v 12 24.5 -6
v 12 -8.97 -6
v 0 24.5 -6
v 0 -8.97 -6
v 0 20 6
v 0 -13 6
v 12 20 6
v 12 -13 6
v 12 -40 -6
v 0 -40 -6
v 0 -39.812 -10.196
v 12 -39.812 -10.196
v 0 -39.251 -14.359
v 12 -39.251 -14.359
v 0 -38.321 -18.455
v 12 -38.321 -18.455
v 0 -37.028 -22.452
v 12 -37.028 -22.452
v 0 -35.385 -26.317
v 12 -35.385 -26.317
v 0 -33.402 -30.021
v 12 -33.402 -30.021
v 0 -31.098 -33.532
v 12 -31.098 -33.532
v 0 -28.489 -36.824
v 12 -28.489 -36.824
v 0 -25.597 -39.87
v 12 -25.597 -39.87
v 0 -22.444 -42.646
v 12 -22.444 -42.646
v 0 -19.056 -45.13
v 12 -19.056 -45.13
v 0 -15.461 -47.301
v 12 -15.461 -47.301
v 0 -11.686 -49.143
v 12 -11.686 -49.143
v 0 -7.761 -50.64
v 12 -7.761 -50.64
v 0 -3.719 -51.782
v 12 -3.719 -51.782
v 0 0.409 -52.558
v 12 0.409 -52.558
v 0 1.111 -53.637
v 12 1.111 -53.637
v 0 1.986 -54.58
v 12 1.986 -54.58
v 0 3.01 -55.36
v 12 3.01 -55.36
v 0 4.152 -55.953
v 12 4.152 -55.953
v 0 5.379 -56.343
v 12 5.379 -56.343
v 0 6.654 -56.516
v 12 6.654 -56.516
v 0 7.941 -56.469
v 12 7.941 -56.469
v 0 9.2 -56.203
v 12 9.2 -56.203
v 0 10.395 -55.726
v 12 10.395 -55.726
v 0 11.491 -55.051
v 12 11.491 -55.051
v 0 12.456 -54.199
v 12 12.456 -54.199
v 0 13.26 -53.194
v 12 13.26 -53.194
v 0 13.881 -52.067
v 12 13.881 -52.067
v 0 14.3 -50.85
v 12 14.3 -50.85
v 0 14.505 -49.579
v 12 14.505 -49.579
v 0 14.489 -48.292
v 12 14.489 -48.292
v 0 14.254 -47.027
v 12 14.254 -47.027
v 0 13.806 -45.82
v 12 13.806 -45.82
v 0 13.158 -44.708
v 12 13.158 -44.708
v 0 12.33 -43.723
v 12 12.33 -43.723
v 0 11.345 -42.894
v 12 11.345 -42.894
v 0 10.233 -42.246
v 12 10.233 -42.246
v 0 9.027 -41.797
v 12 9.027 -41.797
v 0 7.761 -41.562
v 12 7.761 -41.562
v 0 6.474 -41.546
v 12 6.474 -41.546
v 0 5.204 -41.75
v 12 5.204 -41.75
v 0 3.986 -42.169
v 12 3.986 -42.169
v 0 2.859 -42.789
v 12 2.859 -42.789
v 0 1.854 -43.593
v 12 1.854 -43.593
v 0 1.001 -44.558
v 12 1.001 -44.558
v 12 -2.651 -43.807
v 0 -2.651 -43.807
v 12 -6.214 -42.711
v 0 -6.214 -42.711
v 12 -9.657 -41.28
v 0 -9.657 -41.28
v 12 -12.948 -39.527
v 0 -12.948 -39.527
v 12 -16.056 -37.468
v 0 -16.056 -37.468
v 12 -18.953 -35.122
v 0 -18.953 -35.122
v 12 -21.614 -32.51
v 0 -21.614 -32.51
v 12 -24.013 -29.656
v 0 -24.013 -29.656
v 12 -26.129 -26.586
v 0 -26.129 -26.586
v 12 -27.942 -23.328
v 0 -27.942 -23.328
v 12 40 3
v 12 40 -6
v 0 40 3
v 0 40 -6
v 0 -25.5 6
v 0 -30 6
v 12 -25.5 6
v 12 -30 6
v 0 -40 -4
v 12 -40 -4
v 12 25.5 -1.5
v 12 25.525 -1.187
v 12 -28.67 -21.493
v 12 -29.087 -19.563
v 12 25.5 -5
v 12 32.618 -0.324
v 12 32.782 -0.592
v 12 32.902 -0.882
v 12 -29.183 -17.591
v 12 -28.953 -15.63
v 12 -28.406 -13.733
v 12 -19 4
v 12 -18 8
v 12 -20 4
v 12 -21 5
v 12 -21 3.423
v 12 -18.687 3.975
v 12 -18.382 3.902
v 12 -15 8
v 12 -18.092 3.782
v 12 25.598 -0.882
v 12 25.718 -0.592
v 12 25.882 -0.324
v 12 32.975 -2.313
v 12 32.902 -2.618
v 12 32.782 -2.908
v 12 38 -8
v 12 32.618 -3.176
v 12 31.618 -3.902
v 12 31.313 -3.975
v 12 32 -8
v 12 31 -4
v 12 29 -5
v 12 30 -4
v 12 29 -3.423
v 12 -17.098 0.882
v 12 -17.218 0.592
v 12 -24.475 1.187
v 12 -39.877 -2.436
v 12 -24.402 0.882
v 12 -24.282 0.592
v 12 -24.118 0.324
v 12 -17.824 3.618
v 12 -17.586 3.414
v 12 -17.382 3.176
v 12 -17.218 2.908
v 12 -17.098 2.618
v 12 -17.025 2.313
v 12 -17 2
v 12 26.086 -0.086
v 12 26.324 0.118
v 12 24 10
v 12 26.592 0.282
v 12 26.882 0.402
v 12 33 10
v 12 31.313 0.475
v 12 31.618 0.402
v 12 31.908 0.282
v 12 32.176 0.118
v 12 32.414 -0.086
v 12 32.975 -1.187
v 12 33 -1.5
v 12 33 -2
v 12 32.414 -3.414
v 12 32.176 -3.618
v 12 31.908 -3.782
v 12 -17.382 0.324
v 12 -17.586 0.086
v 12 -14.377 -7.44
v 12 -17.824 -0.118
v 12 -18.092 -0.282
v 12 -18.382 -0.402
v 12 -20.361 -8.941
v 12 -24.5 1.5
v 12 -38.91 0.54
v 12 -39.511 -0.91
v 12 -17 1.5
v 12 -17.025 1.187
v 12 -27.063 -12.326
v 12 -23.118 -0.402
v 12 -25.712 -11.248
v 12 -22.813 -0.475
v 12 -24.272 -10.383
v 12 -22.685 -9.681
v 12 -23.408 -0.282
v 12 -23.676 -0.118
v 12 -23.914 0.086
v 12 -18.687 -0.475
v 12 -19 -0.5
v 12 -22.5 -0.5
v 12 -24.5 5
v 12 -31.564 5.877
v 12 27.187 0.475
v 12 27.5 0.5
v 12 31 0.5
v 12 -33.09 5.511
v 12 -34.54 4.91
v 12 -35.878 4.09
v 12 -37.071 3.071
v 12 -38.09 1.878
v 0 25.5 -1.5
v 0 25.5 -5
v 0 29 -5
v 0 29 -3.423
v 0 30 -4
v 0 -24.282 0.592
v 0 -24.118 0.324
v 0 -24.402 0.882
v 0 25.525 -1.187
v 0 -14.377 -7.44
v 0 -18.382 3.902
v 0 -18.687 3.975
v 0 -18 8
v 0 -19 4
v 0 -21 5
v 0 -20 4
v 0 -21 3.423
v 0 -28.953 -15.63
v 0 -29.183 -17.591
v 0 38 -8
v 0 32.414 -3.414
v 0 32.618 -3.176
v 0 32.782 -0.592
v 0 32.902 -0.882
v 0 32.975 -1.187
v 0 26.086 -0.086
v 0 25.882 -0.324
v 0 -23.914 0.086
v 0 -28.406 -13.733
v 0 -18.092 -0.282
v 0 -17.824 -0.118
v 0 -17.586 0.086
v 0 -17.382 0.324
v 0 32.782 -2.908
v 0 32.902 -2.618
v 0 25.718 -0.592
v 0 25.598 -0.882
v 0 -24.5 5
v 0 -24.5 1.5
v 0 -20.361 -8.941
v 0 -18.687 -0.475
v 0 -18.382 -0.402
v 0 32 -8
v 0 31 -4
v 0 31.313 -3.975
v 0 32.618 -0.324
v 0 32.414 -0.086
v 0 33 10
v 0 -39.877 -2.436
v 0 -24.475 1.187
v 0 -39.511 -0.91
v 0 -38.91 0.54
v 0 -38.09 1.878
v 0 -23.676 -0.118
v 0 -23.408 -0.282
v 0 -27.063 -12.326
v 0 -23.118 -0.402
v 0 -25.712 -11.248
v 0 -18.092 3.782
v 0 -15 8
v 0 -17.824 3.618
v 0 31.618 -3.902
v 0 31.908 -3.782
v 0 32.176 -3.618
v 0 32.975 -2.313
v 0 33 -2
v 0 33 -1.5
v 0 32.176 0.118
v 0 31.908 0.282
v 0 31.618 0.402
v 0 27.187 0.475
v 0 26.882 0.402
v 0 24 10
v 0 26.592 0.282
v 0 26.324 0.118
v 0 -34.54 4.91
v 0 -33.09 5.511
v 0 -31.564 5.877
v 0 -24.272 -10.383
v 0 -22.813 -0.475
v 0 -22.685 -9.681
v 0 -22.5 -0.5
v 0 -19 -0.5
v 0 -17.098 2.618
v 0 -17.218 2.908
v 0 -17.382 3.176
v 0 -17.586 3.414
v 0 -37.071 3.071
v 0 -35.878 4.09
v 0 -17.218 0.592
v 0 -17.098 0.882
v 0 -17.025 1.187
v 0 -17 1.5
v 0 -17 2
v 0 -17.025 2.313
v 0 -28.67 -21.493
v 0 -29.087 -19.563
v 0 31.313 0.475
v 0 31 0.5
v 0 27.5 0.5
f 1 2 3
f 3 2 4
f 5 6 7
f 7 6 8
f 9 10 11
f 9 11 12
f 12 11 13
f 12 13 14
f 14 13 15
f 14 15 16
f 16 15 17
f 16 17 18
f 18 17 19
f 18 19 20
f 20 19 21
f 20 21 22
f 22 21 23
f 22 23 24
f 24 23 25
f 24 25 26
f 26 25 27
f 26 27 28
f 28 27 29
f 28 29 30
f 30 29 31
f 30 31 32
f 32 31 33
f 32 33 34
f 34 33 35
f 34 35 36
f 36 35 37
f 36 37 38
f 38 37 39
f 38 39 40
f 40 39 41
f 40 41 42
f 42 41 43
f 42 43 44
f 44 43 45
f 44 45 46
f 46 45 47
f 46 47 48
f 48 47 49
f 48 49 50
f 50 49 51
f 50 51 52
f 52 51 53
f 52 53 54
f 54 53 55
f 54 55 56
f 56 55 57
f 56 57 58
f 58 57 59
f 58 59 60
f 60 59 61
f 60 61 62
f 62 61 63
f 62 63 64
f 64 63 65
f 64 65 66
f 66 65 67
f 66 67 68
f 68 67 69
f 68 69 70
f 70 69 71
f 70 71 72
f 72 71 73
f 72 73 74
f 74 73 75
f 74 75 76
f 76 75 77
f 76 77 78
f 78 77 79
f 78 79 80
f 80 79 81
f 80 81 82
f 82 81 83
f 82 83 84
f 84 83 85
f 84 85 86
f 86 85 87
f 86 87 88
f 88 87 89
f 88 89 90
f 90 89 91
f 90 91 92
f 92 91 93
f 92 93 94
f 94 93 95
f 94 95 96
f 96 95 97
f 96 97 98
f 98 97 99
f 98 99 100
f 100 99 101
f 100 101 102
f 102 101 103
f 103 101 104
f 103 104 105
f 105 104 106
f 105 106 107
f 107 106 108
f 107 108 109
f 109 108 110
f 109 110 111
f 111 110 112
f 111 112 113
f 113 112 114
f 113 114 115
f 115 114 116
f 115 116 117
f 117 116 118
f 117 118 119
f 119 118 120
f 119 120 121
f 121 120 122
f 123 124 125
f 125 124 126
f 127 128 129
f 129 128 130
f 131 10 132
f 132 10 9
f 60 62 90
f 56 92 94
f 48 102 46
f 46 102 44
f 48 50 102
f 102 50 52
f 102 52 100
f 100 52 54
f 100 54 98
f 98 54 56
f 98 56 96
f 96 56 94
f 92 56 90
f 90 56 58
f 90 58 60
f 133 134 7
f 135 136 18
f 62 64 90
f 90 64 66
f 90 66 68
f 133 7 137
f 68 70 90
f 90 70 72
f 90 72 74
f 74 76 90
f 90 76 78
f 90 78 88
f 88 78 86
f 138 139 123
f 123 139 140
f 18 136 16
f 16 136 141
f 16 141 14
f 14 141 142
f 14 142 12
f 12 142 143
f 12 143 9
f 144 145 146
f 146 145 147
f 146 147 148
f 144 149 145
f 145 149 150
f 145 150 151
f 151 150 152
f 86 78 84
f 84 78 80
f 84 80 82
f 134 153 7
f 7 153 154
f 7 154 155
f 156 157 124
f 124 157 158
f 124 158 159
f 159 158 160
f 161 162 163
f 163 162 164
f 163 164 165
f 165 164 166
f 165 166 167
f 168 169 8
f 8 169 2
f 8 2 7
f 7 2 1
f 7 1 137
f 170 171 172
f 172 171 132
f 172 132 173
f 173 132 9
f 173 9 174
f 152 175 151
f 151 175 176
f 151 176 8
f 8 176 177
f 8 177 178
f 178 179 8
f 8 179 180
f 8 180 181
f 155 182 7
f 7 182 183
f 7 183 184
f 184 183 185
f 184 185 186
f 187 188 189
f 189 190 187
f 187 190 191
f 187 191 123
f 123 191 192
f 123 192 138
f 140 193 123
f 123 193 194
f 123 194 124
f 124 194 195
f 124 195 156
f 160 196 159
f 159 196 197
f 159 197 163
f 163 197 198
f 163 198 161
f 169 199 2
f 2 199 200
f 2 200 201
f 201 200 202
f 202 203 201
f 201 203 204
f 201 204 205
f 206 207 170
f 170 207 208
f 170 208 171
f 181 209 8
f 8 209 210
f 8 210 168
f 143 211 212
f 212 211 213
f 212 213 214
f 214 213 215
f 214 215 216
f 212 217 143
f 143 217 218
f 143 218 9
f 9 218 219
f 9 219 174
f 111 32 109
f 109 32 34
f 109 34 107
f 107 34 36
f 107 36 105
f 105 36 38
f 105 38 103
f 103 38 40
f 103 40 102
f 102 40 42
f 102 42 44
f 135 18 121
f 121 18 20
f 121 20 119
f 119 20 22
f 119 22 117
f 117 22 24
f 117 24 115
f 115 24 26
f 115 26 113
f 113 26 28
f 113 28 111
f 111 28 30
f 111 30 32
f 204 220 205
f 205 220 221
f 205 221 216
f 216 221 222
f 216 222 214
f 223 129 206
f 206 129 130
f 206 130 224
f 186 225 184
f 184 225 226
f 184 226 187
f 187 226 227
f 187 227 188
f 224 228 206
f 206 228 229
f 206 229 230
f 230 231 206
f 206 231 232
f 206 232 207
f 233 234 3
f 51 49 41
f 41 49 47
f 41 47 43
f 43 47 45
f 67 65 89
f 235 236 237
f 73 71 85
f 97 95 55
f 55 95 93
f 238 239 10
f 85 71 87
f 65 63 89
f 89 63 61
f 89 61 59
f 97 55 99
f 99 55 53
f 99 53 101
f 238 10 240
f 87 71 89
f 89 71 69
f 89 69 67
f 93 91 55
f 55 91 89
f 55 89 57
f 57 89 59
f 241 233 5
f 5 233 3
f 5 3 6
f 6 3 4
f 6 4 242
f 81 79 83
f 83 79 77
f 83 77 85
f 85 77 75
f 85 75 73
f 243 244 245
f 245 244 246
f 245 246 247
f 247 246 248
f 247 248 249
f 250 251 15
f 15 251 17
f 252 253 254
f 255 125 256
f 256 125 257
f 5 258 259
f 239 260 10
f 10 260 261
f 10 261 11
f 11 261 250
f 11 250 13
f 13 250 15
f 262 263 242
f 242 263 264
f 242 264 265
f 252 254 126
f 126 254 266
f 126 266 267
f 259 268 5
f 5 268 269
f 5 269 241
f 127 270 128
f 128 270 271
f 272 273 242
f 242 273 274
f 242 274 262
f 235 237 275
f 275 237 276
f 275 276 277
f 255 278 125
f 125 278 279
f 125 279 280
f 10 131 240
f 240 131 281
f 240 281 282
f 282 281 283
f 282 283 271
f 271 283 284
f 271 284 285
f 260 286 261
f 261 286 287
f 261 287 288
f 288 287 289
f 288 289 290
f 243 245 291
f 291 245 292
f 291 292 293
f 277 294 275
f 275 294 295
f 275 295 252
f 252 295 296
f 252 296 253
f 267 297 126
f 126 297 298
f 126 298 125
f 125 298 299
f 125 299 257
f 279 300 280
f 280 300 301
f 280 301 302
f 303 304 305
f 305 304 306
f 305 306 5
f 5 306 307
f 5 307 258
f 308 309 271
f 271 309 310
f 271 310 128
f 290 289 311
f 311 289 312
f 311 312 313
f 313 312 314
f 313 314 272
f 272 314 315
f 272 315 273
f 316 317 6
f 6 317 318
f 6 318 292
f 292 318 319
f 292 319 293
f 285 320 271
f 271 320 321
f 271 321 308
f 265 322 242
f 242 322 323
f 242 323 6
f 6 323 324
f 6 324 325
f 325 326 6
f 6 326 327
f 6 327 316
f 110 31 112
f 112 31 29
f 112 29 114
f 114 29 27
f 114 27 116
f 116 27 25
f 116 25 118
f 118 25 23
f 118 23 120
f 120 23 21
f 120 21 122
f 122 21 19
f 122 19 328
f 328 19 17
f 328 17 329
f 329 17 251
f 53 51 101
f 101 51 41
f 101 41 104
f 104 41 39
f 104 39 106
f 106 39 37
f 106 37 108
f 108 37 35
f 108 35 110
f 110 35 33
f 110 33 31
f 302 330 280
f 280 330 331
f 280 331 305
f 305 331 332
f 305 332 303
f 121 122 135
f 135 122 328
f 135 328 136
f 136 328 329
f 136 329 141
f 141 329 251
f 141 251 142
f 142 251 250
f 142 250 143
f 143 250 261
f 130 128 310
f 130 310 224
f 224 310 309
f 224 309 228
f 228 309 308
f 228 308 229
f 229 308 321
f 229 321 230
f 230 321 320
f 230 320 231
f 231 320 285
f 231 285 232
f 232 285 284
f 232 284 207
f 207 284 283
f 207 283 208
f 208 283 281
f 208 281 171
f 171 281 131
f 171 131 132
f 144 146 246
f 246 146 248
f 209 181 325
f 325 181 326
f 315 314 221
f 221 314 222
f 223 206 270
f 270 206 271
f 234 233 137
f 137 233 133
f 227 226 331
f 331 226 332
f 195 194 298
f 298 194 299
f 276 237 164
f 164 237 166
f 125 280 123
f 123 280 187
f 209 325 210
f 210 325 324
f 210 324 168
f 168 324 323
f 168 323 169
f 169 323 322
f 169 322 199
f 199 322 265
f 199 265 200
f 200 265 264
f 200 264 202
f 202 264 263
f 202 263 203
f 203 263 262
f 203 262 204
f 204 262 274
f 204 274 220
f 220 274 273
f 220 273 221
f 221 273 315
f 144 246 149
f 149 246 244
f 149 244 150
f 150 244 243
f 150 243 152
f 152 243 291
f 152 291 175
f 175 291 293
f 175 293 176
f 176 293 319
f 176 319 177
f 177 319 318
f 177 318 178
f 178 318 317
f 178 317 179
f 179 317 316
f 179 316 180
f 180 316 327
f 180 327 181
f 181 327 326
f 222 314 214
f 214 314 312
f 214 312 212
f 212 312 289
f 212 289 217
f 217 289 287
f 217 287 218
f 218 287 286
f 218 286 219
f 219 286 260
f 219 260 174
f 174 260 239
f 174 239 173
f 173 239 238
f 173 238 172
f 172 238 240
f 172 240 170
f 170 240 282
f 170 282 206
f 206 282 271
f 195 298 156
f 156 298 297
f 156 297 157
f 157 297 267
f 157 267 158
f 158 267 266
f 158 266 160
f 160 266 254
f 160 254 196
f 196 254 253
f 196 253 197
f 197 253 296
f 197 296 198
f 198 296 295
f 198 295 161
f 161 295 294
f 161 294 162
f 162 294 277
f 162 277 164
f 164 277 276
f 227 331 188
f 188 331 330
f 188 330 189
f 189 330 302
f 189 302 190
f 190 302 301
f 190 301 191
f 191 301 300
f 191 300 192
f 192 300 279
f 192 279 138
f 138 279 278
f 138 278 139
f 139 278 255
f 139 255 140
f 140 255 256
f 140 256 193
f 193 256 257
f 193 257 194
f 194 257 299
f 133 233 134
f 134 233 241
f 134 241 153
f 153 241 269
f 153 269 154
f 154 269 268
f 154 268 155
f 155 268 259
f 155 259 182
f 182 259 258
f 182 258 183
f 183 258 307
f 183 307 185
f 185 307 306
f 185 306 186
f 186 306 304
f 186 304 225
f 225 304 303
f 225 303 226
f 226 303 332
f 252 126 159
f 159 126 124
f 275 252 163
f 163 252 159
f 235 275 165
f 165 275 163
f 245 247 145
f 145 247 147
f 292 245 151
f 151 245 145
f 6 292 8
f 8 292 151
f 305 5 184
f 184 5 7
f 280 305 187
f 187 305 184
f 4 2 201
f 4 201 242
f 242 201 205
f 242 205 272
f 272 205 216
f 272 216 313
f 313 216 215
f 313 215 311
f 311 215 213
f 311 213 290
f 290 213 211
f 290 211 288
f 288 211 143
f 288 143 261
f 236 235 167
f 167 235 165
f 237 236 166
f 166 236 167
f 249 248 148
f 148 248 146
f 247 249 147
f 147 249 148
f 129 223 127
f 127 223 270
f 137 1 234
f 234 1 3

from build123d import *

# Parameters (mm, degrees)
BOSS_EXTRUDE1_DEPTH = 12
FILLET1_R           = 12
FILLET2_R           = 10
CUT_EXTRUDE1_DEPTH  = 12
CHAMFER1_SIZE       = 3
FILLET3_R           = 2
BOSS_EXTRUDE2_DEPTH = 12
BOSS_EXTRUDE3_DEPTH = 12
CHAMFER2_SIZE       = 1


with BuildPart() as part:
    # Sketch2 → Boss-Extrude1 (new body)
    with BuildSketch(Plane(origin=(0, 0, 0), x_dir=(0, 0, -1), z_dir=(1, 0, 0))):
        with BuildLine():
            Line((-6, 40), (6, 40))
            Line((6, 40), (6, -32))
            ThreePointArc((6, -32), (31.376089713, -22.623144998), (44.55766945, 1.001361229))
            ThreePointArc((44.55766945, 1.001361229), (49.578973365, 14.504959969), (52.55766945, 0.409285399))
            ThreePointArc((52.55766945, 0.409285399), (36.824206929, -28.488778663), (6, -40))
            Line((6, -40), (-6, -40))
            Line((-6, -40), (-6, 40))
        make_face()
    extrude(amount=BOSS_EXTRUDE1_DEPTH)

    # Fillet1
    fillet1_edges = [part.edges().sort_by_distance(p)[0] for p in [
        (6, -32, -6),
    ]]
    fillet(fillet1_edges, radius=FILLET1_R)

    # Fillet2
    fillet2_edges = [part.edges().sort_by_distance(p)[0] for p in [
        (6, -40, 6),
    ]]
    fillet(fillet2_edges, radius=FILLET2_R)

    # Sketch3 → Cut-Extrude1 (cut)
    with BuildSketch(Plane(origin=(12, 0, 0), x_dir=(0, 0, -1), z_dir=(1, 0, 0))):
        Polygon((-6, -20), (-4, -20), (-4, -17), (0.5, -17), (0.5, -20), (0.5, -24.5), (-6, -24.5), align=None)
        Polygon((6, 30), (4, 30), (4, 33), (-0.5, 33), (-0.5, 30), (-0.5, 25.5), (6, 25.5), align=None)
    extrude(amount=-CUT_EXTRUDE1_DEPTH, mode=Mode.SUBTRACT)

    # Chamfer1
    chamfer1_edges = [part.edges().sort_by_distance(p)[0] for p in [
        (6, 40, 6),
    ]]
    chamfer(chamfer1_edges, length=CHAMFER1_SIZE)

    # Fillet3
    fillet3_edges = [part.edges().sort_by_distance(p)[0] for p in [
        (6, -17, 4),
        (6, -17, -0.5),
        (6, -24.5, -0.5),
        (6, 25.5, 0.5),
        (6, 33, 0.5),
        (6, 33, -4),
    ]]
    fillet(fillet3_edges, radius=FILLET3_R)

    # Sketch4 → Boss-Extrude2 (add)
    with BuildSketch(Plane(origin=(12, 0, 0), x_dir=(0, 0, -1), z_dir=(1, 0, 0))):
        Polygon((6, 30), (8, 32), (8, 38), (6, 40), align=None)
        Polygon((-6, -20), (-8, -18), (-8, -15), (-6, -13), align=None)
        Polygon((-6, 37), (-10, 33), (-10, 24), (-6, 20), align=None)
        with BuildLine():
            Line((6, -8.96976203), (3.756023672, -12.28945594))
            Line((3.756023672, -12.28945594), (6, -29.586808416))
            Line((6, -29.586808416), (13.733193293, -28.4055347))
            add(Edge.make_bspline(
                [(6, -8.96976203), (8.392195381, -17.703259611), (9.041325817, -20.67605108), (9.22470807, -24.630513259), (13.733193293, -28.4055347)],
                knots=[0, 0, 0, 0, 0, 1, 1, 1, 1, 1], degree=4))
        make_face()
    extrude(amount=-BOSS_EXTRUDE2_DEPTH)

    # Sketch5 → Boss-Extrude3 (add)
    with BuildSketch(Plane(origin=(12, 0, 0), x_dir=(0, 0, -1), z_dir=(1, 0, 0))):
        Polygon((6, 30), (5, 29), (4, 29), (3.422649731, 29), (4, 30), align=None)
        Polygon((-6, -20), (-5, -21), (-4, -21), (-3.422649731, -21), (-4, -20), align=None)
    extrude(amount=-BOSS_EXTRUDE3_DEPTH)

    # Chamfer2
    chamfer2_edges = [part.edges().sort_by_distance(p)[0] for p in [
        (6, -24.5, 6),
        (6, 25.5, -6),
    ]]
    chamfer(chamfer2_edges, length=CHAMFER2_SIZE)


solid = part.part
